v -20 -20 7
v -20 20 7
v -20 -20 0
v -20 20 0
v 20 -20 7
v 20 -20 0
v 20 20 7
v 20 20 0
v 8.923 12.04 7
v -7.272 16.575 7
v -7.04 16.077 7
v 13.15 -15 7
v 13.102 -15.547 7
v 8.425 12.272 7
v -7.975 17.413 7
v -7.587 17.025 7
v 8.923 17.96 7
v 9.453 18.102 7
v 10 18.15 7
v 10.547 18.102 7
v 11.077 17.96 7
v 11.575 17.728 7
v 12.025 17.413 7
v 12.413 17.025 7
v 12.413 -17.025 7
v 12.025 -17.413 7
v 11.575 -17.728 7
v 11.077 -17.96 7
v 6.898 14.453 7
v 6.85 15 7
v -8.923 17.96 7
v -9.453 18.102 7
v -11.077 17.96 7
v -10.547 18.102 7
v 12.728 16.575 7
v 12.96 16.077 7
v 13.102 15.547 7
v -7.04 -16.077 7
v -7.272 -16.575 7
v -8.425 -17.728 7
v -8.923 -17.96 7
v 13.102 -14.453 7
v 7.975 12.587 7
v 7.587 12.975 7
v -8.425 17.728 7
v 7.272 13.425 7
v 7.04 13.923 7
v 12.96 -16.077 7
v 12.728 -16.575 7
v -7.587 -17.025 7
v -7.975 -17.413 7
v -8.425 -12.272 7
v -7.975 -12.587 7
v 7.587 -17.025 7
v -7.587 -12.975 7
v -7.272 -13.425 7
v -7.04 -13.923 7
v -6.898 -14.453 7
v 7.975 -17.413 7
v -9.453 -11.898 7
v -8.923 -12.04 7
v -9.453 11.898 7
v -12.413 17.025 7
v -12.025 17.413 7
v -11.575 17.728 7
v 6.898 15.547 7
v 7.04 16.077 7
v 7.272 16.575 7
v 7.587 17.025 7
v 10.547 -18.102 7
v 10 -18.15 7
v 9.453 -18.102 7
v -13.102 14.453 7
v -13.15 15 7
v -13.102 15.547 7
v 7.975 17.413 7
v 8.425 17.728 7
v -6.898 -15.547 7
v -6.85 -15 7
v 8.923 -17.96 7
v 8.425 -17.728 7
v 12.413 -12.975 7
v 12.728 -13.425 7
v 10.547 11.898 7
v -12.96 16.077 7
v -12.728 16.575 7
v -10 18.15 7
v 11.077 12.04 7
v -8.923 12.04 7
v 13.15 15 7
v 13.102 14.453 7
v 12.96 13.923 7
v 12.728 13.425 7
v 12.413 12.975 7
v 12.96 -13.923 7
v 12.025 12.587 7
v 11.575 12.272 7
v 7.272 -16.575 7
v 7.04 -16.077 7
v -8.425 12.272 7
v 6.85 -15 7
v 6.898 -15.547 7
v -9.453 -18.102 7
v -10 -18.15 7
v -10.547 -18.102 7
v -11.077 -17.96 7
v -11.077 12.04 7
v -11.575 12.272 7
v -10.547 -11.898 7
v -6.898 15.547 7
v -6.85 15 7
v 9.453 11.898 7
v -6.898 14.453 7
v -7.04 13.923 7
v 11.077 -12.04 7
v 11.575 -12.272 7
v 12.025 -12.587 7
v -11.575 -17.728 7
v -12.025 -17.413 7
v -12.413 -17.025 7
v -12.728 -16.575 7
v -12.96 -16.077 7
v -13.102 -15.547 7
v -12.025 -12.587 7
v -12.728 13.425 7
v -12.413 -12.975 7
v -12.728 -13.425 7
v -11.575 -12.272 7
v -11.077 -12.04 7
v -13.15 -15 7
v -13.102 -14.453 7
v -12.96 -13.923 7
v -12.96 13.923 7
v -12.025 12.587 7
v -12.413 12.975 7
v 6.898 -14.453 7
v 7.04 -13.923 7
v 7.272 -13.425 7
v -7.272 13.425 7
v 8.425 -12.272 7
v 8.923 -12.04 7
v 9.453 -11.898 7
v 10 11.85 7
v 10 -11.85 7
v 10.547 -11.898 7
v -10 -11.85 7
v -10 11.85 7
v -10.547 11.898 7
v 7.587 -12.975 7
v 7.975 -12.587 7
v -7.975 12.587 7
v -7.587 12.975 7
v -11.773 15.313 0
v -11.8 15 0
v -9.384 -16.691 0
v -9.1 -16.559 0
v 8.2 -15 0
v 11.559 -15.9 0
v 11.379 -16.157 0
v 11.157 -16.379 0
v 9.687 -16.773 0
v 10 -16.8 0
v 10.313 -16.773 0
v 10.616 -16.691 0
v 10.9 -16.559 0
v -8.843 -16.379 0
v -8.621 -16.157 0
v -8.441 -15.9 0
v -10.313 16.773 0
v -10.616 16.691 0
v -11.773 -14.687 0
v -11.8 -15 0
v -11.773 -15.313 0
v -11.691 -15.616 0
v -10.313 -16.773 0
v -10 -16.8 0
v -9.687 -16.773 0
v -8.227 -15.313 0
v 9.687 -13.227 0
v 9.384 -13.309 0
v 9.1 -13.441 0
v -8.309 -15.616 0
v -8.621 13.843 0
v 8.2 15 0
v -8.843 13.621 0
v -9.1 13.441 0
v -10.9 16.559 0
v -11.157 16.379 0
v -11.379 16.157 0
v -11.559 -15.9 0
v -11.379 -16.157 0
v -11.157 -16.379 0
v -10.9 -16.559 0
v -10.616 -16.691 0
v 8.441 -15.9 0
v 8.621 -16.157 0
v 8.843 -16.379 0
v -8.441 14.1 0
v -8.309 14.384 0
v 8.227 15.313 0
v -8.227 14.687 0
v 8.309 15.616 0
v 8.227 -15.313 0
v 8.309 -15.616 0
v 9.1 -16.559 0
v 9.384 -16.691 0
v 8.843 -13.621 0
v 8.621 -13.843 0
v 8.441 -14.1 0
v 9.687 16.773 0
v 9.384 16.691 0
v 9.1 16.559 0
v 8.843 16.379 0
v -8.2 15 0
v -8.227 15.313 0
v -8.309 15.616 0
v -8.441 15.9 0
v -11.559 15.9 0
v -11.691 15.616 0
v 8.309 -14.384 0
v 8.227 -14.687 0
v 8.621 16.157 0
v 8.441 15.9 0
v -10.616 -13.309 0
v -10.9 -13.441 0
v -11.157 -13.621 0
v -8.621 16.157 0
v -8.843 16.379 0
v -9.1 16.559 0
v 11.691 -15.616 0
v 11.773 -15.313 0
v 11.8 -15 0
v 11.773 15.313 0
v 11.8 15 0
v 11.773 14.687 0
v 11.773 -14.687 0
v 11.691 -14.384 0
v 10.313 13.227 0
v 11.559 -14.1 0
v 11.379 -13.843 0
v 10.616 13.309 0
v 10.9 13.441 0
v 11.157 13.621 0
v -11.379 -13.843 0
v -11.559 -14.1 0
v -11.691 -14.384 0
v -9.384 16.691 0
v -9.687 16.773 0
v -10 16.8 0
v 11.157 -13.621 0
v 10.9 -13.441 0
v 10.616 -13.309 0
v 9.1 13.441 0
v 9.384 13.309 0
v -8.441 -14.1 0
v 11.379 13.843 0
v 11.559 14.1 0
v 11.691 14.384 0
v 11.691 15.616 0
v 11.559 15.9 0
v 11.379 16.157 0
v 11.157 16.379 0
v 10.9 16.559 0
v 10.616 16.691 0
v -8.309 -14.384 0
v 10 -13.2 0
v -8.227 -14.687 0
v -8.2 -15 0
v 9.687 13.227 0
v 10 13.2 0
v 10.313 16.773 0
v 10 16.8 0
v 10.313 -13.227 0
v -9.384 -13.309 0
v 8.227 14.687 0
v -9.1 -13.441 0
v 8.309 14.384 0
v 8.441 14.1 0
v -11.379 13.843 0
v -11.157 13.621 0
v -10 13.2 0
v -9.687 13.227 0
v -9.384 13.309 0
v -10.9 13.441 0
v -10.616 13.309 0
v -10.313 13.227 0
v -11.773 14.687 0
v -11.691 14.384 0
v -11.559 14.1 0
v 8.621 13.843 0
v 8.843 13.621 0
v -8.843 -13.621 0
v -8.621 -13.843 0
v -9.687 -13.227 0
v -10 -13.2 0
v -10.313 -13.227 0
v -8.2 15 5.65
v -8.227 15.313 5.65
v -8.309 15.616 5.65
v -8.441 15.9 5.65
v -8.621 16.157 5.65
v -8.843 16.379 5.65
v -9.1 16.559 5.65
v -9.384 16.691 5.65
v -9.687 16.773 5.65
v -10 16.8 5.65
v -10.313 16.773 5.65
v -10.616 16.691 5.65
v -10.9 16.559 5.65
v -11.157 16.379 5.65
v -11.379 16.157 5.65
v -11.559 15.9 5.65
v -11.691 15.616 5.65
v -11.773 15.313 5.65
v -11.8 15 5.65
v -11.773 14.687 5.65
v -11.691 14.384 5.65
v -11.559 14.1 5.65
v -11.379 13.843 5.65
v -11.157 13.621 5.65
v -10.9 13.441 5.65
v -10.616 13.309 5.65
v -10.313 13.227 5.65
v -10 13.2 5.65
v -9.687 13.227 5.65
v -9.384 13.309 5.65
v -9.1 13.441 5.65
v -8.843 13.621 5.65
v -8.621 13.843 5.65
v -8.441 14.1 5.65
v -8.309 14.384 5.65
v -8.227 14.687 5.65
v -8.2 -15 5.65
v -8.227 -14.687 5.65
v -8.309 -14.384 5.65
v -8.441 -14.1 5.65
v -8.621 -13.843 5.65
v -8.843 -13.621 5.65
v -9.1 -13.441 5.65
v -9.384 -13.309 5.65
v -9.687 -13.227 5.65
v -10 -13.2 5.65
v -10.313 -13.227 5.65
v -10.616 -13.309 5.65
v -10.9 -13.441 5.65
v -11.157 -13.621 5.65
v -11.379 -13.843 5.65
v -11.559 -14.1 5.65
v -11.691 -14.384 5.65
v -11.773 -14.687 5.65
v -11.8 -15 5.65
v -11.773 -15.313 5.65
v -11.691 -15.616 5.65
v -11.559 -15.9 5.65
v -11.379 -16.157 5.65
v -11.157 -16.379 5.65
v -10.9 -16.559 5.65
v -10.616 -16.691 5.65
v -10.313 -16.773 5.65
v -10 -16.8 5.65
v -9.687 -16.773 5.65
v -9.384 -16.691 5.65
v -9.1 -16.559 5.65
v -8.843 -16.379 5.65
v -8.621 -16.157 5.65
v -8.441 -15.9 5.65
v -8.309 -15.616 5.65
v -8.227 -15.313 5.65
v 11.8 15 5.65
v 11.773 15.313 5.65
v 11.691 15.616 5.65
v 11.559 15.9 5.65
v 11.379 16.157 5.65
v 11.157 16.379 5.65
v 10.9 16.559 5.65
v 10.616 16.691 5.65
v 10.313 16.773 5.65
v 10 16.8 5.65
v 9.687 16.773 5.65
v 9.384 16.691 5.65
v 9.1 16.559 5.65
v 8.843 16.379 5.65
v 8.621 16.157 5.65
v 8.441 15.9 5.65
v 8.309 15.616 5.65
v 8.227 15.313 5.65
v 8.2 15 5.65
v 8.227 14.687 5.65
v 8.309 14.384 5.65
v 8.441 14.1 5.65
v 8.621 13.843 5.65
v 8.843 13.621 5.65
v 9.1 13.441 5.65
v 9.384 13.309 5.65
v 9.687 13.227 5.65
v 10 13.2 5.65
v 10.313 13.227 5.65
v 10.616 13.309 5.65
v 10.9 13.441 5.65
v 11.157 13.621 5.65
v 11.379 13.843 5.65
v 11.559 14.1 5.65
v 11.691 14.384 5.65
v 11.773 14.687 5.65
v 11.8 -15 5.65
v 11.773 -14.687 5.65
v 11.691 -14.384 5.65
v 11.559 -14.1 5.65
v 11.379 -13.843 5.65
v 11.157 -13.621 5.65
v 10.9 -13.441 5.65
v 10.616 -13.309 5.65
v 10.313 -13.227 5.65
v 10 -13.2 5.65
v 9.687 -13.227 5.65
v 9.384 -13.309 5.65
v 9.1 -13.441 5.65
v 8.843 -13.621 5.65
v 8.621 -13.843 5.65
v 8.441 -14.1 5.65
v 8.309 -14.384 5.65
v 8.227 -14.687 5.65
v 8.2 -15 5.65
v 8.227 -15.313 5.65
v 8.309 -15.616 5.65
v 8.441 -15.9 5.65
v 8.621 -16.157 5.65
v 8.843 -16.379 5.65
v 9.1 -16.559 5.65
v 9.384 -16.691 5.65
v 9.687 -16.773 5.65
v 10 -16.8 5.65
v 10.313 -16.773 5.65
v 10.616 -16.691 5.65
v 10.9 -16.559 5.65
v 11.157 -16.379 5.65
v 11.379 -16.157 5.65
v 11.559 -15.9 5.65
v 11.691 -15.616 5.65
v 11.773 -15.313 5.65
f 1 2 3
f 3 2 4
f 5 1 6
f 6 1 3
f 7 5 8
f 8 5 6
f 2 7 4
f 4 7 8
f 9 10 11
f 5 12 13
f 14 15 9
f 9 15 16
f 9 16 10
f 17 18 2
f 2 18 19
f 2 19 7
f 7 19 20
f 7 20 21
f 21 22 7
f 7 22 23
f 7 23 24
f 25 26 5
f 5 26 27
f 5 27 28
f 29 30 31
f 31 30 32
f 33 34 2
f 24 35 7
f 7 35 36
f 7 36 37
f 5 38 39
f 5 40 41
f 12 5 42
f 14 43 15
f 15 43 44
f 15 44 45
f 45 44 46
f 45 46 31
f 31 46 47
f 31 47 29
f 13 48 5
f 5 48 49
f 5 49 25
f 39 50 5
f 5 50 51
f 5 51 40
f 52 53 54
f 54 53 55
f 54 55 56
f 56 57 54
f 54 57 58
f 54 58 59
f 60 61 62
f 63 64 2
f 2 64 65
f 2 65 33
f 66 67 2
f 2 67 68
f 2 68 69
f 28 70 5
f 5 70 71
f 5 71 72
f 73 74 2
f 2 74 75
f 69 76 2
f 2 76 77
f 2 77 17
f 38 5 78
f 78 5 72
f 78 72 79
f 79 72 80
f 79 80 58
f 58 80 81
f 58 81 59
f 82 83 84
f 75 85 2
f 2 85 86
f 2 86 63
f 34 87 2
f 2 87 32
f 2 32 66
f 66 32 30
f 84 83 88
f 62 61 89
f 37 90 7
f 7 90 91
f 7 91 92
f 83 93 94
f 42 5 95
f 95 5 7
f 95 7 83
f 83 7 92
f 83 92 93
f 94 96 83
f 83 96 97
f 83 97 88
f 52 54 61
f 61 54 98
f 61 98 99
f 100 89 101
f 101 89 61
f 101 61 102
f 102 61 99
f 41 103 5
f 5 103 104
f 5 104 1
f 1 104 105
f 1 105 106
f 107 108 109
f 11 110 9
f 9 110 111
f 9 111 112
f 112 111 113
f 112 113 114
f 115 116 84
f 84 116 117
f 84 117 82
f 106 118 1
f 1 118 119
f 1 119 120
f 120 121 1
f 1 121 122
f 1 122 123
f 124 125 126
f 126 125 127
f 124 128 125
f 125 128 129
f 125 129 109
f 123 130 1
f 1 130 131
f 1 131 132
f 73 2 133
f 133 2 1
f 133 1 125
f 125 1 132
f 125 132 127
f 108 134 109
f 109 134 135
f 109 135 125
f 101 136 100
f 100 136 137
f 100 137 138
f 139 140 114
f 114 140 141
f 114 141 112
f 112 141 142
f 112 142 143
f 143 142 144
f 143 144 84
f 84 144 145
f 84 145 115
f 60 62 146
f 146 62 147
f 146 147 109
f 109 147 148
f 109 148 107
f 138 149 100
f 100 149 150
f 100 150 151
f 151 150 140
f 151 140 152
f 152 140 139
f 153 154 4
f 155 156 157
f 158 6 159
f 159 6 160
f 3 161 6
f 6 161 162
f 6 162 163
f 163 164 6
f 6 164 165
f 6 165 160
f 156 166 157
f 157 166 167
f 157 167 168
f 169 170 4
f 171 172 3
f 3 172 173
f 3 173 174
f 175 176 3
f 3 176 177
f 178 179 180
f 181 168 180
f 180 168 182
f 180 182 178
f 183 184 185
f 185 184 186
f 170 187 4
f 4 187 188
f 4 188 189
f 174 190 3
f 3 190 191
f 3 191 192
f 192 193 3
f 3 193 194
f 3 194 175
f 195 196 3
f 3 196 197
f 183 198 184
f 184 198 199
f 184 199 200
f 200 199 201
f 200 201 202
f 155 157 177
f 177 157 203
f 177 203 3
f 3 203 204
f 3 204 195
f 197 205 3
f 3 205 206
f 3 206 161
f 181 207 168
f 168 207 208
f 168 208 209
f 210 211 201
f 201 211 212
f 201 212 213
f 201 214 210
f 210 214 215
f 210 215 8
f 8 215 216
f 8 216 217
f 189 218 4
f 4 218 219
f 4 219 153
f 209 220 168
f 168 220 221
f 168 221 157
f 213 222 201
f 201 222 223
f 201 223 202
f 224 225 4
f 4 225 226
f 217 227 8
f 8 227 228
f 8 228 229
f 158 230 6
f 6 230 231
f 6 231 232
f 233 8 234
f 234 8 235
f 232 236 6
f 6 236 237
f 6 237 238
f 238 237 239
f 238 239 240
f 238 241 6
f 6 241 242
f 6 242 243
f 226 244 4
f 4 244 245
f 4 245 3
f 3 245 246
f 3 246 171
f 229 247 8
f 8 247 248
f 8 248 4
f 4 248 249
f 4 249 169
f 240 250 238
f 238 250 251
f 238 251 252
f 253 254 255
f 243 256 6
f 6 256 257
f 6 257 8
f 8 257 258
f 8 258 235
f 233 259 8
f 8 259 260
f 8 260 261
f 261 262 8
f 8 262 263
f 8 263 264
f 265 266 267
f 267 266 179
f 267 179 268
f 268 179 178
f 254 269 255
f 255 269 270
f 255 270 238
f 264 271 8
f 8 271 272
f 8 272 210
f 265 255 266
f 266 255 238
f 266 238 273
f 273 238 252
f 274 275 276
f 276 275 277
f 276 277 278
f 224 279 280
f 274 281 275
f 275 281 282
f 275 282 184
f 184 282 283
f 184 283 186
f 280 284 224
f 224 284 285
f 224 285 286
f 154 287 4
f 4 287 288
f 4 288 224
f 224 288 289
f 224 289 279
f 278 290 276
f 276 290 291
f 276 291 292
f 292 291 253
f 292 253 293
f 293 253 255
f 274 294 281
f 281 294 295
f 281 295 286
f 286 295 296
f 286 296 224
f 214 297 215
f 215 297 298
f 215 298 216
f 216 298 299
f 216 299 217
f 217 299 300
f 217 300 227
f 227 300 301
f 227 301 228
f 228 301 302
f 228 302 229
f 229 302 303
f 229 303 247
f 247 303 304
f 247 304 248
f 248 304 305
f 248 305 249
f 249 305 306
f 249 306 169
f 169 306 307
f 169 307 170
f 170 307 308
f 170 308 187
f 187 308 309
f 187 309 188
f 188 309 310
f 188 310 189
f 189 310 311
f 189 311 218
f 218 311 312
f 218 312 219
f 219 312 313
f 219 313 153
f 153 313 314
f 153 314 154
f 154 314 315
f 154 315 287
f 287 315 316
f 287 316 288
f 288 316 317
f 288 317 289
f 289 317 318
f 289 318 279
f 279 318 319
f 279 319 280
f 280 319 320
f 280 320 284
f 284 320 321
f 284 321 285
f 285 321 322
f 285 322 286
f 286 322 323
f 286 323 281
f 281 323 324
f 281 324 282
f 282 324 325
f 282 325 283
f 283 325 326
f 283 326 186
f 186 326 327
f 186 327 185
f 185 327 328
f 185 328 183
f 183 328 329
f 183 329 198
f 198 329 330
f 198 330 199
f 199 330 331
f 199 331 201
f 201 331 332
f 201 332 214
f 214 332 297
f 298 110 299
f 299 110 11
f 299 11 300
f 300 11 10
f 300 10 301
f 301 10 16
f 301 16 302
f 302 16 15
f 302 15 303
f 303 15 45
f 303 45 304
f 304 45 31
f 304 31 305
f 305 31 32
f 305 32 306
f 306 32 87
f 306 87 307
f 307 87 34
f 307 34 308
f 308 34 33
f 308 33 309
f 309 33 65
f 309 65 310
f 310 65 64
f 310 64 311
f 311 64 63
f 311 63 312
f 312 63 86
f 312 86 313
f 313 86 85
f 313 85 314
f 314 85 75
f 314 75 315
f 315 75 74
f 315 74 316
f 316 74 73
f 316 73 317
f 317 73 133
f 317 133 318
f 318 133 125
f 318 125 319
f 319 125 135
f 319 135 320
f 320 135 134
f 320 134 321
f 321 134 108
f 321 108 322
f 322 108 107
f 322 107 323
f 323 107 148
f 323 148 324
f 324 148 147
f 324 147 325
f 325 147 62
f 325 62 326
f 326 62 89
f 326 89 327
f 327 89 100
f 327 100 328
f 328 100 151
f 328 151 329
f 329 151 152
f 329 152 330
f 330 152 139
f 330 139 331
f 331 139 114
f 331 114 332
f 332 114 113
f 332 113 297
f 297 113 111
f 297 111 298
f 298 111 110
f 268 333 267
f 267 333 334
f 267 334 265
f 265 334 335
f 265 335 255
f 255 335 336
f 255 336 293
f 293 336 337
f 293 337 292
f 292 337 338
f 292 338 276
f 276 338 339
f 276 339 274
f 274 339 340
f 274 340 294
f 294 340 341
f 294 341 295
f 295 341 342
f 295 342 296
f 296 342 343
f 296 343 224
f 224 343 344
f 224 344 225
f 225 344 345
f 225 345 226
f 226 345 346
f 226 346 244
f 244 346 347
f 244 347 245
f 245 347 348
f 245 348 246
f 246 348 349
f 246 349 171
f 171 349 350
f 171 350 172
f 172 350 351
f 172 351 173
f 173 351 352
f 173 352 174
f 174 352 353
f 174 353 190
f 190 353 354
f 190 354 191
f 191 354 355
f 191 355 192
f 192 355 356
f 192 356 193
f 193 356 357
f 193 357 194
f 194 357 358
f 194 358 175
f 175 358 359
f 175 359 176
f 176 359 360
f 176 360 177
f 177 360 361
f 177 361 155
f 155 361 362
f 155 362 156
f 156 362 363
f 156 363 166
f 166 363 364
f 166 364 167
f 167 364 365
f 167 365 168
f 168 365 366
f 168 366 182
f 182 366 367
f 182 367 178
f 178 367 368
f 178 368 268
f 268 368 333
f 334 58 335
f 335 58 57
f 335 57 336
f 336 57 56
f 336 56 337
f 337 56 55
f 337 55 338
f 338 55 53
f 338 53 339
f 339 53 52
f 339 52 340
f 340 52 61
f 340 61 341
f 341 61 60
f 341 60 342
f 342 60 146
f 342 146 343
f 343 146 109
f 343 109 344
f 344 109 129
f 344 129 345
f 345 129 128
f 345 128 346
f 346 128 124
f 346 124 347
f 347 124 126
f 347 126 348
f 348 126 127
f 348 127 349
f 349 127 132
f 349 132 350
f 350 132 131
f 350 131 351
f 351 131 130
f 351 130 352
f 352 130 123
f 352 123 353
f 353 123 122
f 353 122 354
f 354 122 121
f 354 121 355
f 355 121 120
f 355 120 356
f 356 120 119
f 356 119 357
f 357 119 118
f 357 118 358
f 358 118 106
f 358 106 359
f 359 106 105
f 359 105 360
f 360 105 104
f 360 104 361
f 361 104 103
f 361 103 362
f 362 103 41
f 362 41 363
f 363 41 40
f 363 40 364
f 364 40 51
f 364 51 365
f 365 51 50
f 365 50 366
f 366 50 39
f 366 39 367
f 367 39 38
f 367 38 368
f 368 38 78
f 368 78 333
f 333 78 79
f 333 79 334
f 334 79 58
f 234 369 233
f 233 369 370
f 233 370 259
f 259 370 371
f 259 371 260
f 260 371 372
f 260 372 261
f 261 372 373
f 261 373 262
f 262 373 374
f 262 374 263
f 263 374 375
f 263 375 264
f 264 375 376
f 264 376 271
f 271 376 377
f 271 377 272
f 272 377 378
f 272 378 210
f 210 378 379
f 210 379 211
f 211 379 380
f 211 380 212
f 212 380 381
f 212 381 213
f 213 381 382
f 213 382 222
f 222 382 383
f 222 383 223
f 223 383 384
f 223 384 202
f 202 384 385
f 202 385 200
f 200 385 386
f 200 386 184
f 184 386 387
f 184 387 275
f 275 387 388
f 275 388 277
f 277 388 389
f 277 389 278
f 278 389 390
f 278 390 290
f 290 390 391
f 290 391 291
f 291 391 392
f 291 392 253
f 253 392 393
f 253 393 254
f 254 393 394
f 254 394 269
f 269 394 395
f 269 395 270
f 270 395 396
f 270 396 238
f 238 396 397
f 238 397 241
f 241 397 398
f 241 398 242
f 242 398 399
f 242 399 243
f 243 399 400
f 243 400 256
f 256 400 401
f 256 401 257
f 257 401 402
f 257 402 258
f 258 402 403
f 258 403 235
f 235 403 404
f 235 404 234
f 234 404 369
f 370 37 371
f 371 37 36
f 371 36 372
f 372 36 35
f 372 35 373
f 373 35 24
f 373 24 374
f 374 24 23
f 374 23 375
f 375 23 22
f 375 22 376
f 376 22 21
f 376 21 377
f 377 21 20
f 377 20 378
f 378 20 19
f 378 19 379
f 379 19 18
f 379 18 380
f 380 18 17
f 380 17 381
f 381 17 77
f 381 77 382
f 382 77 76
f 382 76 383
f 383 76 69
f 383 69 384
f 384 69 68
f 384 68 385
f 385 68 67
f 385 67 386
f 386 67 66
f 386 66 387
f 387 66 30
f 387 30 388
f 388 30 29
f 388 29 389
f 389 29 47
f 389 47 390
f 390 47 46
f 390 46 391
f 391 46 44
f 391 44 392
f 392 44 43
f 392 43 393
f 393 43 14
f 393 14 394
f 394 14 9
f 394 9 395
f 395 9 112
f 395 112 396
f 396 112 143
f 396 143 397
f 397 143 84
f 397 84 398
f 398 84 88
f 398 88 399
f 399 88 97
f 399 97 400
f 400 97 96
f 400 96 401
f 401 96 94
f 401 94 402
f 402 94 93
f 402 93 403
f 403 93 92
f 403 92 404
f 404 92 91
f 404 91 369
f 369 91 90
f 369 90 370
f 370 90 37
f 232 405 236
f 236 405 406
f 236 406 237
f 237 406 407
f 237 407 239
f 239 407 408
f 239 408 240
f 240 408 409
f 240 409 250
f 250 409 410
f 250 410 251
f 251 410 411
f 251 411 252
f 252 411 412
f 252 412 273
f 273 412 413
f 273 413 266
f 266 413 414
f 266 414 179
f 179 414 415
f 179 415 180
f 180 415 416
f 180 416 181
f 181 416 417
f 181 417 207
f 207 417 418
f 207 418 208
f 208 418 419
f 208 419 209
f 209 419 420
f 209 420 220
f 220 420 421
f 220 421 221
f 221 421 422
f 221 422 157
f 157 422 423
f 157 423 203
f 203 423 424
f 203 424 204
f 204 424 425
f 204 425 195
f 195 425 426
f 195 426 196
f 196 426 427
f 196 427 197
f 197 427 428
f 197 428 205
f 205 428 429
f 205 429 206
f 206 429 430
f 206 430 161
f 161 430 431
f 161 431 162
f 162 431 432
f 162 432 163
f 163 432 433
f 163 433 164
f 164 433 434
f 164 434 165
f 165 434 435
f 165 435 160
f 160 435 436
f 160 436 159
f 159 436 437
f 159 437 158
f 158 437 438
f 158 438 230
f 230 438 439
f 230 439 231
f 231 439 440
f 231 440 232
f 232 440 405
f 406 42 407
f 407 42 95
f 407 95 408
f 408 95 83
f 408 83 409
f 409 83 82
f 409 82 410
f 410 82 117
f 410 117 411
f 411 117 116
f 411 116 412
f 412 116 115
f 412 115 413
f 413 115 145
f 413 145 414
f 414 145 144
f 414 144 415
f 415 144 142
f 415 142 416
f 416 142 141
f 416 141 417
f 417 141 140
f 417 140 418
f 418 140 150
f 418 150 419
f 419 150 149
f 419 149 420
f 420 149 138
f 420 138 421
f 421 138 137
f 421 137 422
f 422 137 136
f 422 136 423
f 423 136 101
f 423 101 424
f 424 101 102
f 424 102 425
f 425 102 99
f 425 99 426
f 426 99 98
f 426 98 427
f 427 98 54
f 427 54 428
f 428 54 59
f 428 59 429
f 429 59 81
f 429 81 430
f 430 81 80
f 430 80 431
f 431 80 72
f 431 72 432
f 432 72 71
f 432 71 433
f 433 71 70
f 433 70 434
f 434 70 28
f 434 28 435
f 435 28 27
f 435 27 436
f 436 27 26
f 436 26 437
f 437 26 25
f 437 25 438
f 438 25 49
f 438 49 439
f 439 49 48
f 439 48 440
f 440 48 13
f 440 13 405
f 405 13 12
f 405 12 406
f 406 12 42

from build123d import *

# Parameters (mm, degrees)
SCHIZZO1_W                   = 40
SCHIZZO1_H                   = 40
ESTRUSIONE_ESTRUSIONE1_DEPTH = 7
RIPETIZIONE_A_L1_COUNT       = 2
RIPETIZIONE_A_L1_PITCH       = 20
RIPETIZIONE_A_L1_COUNT_DIR2  = 2
RIPETIZIONE_A_L1_PITCH_DIR2  = 30


with BuildPart() as part:
    # Schizzo1 → Estrusione-Estrusione1 (new body)
    with BuildSketch(Plane.XY):
        Rectangle(SCHIZZO1_W, SCHIZZO1_H)
    extrude(amount=ESTRUSIONE_ESTRUSIONE1_DEPTH)

    # Schizzo4 → Foro svasato per Vite M3-1 (revolve, cut)
    with BuildSketch(Plane(origin=(-10, 15, 7), x_dir=(0, -1, 0), z_dir=(1, 0, 0))):
        Polygon((0, 0), (0, 11.081549114), (1.8, 10), (1.8, 1.35), (3.15, 0), align=None)
    foro_svasato_per_vite_m3_1 = revolve(axis=Axis((-10, 15, 13.35), (0, 0, -1)), mode=Mode.SUBTRACT)

    # Ripetizione a L1: Foro svasato per Vite M3-1 2 × 2
    with Locations(*[(i * RIPETIZIONE_A_L1_PITCH, -j * RIPETIZIONE_A_L1_PITCH_DIR2, 0) for i in range(RIPETIZIONE_A_L1_COUNT) for j in range(RIPETIZIONE_A_L1_COUNT_DIR2) if (i, j) != (0, 0)]):
        add(foro_svasato_per_vite_m3_1, mode=Mode.SUBTRACT)


solid = part.part
